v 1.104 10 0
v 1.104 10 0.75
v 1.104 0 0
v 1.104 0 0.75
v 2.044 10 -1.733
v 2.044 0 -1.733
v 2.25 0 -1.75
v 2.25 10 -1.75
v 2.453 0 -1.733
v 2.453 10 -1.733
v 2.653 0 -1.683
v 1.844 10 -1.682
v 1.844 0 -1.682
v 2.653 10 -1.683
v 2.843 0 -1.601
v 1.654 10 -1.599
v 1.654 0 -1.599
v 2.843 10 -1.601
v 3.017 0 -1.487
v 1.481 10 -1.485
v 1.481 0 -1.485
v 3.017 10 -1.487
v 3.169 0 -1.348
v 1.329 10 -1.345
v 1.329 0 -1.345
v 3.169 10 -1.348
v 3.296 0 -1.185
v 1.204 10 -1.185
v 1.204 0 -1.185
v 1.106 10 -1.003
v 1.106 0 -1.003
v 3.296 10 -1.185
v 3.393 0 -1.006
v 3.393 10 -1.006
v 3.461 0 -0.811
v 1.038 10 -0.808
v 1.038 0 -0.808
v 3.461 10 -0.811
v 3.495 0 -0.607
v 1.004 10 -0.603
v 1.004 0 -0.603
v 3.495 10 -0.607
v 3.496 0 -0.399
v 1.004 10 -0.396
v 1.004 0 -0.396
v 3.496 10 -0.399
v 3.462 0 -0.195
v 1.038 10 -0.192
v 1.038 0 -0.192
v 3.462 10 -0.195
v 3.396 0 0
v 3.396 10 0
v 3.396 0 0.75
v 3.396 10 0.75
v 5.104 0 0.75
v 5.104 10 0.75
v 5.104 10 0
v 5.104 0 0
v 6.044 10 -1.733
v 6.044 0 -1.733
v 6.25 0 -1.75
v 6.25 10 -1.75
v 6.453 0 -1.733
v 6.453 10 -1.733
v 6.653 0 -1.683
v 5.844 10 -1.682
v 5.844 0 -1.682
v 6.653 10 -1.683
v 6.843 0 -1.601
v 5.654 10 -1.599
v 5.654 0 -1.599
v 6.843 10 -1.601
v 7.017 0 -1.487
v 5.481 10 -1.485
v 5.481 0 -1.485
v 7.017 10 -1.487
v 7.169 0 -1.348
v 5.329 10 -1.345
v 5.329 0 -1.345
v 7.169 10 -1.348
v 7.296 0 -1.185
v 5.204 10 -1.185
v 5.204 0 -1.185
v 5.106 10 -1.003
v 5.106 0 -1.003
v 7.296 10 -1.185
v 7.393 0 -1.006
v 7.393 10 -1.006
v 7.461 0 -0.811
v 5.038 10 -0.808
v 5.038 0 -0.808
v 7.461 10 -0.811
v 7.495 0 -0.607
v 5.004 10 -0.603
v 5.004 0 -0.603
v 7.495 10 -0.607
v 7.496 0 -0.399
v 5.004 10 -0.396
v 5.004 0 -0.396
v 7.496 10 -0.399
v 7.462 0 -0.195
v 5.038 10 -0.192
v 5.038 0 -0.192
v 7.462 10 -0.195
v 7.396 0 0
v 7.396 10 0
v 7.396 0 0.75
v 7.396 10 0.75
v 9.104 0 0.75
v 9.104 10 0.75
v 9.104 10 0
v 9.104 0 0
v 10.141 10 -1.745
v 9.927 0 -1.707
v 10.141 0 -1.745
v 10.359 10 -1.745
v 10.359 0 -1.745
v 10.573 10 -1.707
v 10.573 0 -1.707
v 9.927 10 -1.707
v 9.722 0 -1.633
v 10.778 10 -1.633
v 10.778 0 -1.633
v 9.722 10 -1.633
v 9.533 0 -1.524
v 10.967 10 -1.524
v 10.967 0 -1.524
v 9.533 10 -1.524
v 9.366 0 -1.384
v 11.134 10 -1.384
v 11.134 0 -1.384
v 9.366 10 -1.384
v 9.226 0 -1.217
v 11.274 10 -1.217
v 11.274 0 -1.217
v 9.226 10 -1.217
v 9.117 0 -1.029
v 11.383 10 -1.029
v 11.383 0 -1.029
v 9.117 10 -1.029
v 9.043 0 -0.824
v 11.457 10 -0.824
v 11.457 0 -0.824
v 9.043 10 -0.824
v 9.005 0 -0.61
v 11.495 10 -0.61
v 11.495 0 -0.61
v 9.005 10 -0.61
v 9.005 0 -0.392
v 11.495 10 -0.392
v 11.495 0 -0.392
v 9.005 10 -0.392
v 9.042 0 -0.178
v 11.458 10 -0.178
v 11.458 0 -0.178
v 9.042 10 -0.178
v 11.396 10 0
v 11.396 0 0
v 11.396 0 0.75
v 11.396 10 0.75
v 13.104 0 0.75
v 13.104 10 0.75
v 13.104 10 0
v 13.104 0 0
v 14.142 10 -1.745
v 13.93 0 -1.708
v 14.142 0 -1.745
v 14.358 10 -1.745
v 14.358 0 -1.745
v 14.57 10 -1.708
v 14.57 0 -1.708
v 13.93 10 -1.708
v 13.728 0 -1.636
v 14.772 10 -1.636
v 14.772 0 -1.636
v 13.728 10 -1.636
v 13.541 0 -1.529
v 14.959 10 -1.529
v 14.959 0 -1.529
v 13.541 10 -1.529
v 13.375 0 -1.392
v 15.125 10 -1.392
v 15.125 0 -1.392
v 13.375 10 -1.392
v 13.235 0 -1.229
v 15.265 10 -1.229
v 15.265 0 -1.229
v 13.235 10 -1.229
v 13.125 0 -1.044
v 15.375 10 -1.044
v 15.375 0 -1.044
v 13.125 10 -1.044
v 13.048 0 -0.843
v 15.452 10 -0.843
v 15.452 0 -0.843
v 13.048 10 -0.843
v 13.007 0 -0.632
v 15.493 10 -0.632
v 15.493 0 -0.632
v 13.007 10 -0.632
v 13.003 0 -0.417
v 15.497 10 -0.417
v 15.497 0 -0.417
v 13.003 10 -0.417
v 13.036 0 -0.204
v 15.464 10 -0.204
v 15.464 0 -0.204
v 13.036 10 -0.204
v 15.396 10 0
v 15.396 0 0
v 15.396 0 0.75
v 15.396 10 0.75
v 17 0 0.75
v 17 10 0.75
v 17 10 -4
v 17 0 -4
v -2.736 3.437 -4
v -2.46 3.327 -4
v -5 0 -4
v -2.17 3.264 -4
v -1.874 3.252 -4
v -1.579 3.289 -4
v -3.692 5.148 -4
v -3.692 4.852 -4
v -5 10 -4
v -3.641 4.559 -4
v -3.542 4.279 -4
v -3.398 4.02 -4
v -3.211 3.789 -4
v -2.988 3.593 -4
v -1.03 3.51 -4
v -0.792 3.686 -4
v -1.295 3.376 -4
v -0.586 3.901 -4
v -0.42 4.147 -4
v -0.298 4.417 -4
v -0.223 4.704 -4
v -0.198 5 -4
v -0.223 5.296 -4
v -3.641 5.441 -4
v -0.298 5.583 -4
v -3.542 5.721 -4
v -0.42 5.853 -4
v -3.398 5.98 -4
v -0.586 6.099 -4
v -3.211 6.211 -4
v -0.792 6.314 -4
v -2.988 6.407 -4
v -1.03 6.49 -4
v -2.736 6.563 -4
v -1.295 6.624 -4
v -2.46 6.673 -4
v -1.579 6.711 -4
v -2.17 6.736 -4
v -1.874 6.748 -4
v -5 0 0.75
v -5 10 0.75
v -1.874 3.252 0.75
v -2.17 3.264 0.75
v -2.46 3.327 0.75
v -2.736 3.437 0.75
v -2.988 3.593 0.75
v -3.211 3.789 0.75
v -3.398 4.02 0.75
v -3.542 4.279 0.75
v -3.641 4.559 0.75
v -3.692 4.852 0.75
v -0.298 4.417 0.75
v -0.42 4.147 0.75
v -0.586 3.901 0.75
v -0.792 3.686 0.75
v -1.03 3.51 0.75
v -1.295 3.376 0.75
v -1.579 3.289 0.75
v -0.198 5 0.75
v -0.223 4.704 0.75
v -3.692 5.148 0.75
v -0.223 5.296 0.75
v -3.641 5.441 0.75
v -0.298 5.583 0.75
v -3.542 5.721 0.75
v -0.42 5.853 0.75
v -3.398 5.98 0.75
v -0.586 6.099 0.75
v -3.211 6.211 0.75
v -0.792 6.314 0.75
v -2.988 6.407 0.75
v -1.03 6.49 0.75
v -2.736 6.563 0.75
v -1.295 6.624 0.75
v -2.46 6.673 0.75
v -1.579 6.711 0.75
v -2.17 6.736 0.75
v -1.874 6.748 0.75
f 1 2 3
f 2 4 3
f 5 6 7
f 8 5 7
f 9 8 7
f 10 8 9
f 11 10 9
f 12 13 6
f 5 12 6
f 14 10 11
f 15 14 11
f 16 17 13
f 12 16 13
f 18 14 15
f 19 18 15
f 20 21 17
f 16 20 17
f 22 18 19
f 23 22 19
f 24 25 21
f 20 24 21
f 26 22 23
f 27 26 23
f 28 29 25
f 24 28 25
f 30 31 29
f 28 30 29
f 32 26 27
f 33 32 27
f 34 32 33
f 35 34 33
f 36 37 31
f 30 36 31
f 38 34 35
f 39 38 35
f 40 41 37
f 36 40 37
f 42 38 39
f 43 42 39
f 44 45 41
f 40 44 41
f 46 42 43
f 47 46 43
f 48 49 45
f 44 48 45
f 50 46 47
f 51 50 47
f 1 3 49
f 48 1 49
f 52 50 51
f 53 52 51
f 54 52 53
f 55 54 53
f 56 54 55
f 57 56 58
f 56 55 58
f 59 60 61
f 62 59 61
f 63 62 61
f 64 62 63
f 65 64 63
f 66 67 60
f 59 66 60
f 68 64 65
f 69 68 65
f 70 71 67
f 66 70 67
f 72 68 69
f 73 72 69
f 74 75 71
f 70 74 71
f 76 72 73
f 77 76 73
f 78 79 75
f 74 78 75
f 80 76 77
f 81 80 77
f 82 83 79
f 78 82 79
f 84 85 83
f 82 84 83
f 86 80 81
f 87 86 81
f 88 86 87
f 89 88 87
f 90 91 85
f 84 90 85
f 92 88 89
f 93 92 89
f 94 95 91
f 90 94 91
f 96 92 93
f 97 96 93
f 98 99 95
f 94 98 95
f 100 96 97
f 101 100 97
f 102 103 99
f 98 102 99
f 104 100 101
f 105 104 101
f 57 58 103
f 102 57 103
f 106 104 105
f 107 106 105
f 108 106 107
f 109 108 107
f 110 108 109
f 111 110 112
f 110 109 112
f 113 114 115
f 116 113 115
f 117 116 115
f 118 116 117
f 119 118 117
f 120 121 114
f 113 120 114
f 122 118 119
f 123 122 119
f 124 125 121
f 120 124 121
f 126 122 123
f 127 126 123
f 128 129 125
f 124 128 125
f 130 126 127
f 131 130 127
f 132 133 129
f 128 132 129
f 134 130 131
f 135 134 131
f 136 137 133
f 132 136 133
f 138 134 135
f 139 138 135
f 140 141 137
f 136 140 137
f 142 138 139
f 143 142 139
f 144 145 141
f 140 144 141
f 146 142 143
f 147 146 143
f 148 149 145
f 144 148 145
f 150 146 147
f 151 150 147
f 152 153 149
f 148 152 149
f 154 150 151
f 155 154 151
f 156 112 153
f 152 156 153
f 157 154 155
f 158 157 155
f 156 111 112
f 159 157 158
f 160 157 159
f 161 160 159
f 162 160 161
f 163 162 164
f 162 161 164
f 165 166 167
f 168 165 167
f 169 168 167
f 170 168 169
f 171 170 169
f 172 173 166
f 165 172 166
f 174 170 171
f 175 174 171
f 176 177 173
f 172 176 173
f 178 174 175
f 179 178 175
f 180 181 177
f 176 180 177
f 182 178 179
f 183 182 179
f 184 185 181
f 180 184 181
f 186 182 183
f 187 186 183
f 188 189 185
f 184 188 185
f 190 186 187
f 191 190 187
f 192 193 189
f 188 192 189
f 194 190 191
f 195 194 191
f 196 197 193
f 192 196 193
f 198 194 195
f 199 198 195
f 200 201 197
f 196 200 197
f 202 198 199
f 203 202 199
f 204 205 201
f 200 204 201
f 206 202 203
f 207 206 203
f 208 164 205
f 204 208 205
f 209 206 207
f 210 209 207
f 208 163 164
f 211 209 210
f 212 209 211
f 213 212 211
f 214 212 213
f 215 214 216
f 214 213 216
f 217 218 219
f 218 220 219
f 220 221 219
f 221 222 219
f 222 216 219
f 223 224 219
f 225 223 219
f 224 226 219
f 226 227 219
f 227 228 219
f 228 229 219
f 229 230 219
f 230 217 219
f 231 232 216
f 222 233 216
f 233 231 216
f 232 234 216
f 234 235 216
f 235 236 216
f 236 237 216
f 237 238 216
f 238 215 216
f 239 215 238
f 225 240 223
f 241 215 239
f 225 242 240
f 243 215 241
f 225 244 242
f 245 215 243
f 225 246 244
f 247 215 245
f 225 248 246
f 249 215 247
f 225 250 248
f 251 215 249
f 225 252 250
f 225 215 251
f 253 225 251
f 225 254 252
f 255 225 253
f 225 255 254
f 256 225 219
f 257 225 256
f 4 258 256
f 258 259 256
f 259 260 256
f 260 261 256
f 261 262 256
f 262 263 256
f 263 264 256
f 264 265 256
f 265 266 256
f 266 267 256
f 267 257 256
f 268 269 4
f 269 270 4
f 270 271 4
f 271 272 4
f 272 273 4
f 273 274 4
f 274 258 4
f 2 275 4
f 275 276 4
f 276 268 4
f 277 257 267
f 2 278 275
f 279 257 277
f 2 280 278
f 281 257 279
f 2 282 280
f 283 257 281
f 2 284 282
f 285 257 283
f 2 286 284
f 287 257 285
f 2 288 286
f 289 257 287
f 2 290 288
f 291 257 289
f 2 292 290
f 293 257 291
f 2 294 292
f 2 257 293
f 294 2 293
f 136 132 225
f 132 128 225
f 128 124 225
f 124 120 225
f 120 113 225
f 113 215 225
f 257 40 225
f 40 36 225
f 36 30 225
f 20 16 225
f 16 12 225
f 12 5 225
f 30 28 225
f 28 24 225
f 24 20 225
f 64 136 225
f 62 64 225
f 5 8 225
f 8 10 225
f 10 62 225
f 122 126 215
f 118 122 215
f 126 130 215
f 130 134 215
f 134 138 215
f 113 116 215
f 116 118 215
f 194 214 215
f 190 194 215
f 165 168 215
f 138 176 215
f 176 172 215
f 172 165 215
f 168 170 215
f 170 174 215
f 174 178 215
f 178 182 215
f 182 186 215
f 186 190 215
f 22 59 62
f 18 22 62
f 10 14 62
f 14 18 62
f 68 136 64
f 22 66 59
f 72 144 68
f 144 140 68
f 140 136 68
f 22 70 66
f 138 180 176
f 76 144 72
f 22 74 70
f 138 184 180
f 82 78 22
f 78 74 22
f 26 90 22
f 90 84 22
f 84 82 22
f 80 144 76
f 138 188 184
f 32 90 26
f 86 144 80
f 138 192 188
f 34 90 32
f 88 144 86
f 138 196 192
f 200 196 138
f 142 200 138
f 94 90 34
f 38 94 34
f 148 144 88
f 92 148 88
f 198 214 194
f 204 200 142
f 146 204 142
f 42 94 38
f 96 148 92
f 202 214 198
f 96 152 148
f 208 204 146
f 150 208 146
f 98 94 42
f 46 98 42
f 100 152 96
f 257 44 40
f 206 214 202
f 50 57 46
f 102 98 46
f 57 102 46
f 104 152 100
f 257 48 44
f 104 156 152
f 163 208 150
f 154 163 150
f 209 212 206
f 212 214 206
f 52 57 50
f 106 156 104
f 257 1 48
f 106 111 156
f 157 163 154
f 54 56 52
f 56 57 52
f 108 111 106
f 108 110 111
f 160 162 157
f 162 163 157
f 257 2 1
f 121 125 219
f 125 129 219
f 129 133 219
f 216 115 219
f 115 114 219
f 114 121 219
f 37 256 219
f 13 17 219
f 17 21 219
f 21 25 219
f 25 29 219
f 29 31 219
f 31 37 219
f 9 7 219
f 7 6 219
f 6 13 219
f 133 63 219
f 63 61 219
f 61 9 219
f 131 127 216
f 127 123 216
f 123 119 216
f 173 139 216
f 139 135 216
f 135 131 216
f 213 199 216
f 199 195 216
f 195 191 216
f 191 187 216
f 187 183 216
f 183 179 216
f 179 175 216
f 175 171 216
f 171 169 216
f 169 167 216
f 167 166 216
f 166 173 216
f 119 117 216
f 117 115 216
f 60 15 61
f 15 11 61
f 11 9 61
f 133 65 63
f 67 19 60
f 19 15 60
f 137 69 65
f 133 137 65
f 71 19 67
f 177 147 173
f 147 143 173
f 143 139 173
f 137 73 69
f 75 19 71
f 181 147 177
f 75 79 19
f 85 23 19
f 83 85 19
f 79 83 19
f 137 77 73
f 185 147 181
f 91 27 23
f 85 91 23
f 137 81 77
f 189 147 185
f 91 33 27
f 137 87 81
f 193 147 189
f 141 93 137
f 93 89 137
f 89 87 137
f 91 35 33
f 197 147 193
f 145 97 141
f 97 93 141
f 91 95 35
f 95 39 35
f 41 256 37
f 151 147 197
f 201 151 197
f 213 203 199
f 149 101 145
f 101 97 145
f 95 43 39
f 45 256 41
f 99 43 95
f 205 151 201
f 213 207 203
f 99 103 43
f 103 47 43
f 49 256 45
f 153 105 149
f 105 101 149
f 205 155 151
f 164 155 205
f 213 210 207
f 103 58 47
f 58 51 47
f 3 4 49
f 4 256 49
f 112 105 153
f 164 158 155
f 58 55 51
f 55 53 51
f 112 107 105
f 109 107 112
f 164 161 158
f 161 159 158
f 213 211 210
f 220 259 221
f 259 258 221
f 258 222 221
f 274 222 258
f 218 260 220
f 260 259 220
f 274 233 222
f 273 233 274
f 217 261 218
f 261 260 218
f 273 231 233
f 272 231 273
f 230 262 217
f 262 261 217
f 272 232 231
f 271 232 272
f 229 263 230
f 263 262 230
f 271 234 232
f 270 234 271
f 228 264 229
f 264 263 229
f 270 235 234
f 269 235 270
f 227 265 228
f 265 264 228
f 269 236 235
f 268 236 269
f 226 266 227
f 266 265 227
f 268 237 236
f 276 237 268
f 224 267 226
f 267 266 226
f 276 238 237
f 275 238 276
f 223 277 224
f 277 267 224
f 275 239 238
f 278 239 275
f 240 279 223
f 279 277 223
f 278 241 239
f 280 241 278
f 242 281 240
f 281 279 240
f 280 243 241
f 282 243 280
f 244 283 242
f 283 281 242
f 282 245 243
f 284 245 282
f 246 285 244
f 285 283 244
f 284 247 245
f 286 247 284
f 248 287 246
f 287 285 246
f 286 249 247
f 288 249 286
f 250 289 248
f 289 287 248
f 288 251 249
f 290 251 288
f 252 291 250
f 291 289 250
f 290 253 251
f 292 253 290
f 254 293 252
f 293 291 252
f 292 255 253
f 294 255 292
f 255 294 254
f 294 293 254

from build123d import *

# Parameters (mm, degrees)
BOSS_EXTRUDE1_DEPTH = 10
SKETCH4_R           = 1.75
CUT_EXTRUDE2_DEPTH  = 21.287003229


with BuildPart() as part:
    # Sketch1 → Boss-Extrude1 (new body)
    with BuildSketch(Plane(origin=(0, 0, 0), x_dir=(1, 0, 0), z_dir=(0, 1, 0))):
        with BuildLine():
            Line((17, 4), (-5, 4))
            Line((-5, 4), (-5, -0.75))
            Line((-5, -0.75), (1.104356076, -0.75))
            Line((1.104356076, -0.75), (1.104356076, 0))
            ThreePointArc((1.104356076, 0), (2.25, 1.75), (3.395643924, 0))
            Line((3.395643924, 0), (3.395643924, -0.75))
            Line((3.395643924, -0.75), (5.104356076, -0.75))
            Line((5.104356076, -0.75), (5.104356076, 0))
            ThreePointArc((5.104356076, 0), (6.25, 1.75), (7.395643924, 0))
            Line((7.395643924, 0), (7.395643924, -0.75))
            Line((7.395643924, -0.75), (9.104356076, -0.75))
            Line((9.104356076, -0.75), (9.104356076, 0))
            ThreePointArc((9.104356076, 0), (10.25, 1.75), (11.395643924, 0))
            Line((11.395643924, 0), (11.395643924, -0.75))
            Line((11.395643924, -0.75), (13.104356076, -0.75))
            Line((13.104356076, -0.75), (13.104356076, 0))
            ThreePointArc((13.104356076, 0), (14.25, 1.75), (15.395643924, 0))
            Line((15.395643924, 0), (15.395643924, -0.75))
            Line((15.395643924, -0.75), (17, -0.75))
            Line((17, -0.75), (17, 4))
        make_face()
    extrude(amount=BOSS_EXTRUDE1_DEPTH)

    # Sketch4 → Cut-Extrude2 (cut, through all)
    with BuildSketch(Plane.XY.offset(0.75)):
        with Locations((-1.947821962, 5)):
            Circle(SKETCH4_R)
    extrude(amount=-CUT_EXTRUDE2_DEPTH, mode=Mode.SUBTRACT)


solid = part.part
